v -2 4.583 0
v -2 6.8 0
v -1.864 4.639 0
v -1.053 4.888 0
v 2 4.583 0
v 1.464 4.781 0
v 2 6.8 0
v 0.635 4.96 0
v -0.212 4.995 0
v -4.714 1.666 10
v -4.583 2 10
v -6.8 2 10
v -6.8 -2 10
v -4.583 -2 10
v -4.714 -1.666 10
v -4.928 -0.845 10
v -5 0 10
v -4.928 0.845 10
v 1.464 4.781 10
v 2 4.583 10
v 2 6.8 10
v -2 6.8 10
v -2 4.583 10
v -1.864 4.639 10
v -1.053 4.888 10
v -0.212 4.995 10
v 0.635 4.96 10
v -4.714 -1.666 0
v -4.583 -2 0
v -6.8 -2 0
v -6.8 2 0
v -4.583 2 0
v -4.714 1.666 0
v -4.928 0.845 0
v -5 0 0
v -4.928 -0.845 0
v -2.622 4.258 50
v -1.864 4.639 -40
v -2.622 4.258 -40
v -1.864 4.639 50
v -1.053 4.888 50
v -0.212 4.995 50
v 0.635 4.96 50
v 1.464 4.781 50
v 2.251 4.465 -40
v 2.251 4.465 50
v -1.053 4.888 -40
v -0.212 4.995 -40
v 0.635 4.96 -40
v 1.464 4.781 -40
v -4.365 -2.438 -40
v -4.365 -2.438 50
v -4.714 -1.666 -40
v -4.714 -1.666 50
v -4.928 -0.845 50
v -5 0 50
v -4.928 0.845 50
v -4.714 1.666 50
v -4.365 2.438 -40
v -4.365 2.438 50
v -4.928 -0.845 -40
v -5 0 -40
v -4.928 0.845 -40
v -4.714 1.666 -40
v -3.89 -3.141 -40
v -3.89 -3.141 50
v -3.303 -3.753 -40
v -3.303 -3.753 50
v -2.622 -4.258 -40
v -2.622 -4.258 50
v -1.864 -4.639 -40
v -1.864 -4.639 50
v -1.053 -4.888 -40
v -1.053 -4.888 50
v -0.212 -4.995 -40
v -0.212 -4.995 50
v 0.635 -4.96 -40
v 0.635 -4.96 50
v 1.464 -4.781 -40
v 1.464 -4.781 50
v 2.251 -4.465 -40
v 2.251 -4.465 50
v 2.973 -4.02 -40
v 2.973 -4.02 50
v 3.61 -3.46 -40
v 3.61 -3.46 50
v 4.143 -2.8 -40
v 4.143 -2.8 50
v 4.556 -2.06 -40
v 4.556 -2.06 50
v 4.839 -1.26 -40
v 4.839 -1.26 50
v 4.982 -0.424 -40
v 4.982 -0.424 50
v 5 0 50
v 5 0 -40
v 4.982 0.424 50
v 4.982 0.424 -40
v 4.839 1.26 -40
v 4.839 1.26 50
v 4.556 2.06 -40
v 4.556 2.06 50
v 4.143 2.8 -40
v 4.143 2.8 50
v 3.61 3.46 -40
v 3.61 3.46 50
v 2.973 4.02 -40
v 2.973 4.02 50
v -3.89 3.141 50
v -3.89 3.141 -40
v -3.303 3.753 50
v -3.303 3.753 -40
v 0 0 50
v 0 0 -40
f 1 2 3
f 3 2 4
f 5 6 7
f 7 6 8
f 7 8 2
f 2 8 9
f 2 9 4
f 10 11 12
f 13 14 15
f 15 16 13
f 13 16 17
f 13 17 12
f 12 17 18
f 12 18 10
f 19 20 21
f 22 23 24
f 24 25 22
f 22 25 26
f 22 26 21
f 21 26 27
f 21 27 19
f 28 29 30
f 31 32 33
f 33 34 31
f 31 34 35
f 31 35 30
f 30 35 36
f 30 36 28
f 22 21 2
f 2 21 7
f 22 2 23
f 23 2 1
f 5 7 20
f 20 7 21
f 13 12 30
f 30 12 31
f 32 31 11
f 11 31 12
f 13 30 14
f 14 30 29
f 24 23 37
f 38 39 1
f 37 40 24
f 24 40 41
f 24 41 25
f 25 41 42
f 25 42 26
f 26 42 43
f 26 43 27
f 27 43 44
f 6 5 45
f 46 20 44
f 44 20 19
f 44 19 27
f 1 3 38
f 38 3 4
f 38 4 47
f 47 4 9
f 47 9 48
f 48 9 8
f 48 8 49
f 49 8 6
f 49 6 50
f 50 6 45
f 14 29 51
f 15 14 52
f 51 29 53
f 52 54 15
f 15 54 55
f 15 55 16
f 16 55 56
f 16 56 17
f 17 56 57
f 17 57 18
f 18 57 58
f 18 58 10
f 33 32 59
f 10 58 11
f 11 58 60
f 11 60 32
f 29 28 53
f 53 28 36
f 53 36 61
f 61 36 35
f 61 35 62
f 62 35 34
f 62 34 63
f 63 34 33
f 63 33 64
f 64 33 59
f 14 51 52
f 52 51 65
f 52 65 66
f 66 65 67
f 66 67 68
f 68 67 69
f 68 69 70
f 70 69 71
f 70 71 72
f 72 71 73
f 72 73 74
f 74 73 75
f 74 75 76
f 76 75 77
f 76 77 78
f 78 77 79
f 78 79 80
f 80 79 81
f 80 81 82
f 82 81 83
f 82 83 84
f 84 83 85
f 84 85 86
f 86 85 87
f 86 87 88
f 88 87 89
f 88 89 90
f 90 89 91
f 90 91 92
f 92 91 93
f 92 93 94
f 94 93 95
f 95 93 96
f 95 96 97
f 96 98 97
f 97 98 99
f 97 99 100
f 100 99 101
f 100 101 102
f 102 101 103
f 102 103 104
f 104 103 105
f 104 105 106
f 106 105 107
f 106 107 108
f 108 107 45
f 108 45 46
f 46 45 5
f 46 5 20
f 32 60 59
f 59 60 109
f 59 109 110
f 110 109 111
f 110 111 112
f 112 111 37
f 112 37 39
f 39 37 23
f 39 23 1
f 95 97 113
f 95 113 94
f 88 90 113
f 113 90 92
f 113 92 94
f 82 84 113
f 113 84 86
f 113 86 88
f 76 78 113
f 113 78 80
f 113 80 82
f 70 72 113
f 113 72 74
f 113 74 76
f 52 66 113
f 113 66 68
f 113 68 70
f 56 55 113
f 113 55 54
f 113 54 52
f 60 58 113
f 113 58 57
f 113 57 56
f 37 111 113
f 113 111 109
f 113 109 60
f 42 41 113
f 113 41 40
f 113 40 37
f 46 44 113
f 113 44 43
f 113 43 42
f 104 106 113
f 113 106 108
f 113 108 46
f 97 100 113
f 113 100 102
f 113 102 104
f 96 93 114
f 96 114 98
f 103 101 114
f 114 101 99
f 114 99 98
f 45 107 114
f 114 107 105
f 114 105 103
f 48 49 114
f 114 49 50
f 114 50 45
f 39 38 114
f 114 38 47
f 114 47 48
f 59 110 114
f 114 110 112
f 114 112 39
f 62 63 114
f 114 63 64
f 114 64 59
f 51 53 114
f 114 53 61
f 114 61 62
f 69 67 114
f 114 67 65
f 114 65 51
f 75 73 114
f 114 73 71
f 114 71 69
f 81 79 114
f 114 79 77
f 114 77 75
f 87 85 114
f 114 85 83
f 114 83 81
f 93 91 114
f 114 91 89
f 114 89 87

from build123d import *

# Parameters (mm, degrees)
SKETCH2_R           = 5
SKETCH2_W           = 6.8
SKETCH2_H           = 4
SKETCH2_W_2         = 4
SKETCH2_H_2         = 6.8
BOSS_EXTRUDE1_DEPTH = 10
SKETCH2_4_R         = 5
BOSS_EXTRUDE3_DEPTH = 50
BOSS_EXTRUDE4_START = -40
SKETCH2_5_R         = 5
BOSS_EXTRUDE4_DEPTH = 40


with BuildPart() as part:
    # Sketch2 → Boss-Extrude1 (new body)
    with BuildSketch(Plane.XY):
        Circle(SKETCH2_R)
        with Locations((-3.4, 0)):
            Rectangle(SKETCH2_W, SKETCH2_H)
        with Locations((0, 3.4)):
            Rectangle(SKETCH2_W_2, SKETCH2_H_2)
    extrude(amount=BOSS_EXTRUDE1_DEPTH)

    # Sketch2<4> → Boss-Extrude3 (add)
    with BuildSketch(Plane.XY):
        Circle(SKETCH2_4_R)
    extrude(amount=BOSS_EXTRUDE3_DEPTH)

    # Sketch2<5> → Boss-Extrude4 (add)
    with BuildSketch(Plane.XY.offset(BOSS_EXTRUDE4_START)):
        Circle(SKETCH2_5_R)
    extrude(amount=BOSS_EXTRUDE4_DEPTH)


solid = part.part
